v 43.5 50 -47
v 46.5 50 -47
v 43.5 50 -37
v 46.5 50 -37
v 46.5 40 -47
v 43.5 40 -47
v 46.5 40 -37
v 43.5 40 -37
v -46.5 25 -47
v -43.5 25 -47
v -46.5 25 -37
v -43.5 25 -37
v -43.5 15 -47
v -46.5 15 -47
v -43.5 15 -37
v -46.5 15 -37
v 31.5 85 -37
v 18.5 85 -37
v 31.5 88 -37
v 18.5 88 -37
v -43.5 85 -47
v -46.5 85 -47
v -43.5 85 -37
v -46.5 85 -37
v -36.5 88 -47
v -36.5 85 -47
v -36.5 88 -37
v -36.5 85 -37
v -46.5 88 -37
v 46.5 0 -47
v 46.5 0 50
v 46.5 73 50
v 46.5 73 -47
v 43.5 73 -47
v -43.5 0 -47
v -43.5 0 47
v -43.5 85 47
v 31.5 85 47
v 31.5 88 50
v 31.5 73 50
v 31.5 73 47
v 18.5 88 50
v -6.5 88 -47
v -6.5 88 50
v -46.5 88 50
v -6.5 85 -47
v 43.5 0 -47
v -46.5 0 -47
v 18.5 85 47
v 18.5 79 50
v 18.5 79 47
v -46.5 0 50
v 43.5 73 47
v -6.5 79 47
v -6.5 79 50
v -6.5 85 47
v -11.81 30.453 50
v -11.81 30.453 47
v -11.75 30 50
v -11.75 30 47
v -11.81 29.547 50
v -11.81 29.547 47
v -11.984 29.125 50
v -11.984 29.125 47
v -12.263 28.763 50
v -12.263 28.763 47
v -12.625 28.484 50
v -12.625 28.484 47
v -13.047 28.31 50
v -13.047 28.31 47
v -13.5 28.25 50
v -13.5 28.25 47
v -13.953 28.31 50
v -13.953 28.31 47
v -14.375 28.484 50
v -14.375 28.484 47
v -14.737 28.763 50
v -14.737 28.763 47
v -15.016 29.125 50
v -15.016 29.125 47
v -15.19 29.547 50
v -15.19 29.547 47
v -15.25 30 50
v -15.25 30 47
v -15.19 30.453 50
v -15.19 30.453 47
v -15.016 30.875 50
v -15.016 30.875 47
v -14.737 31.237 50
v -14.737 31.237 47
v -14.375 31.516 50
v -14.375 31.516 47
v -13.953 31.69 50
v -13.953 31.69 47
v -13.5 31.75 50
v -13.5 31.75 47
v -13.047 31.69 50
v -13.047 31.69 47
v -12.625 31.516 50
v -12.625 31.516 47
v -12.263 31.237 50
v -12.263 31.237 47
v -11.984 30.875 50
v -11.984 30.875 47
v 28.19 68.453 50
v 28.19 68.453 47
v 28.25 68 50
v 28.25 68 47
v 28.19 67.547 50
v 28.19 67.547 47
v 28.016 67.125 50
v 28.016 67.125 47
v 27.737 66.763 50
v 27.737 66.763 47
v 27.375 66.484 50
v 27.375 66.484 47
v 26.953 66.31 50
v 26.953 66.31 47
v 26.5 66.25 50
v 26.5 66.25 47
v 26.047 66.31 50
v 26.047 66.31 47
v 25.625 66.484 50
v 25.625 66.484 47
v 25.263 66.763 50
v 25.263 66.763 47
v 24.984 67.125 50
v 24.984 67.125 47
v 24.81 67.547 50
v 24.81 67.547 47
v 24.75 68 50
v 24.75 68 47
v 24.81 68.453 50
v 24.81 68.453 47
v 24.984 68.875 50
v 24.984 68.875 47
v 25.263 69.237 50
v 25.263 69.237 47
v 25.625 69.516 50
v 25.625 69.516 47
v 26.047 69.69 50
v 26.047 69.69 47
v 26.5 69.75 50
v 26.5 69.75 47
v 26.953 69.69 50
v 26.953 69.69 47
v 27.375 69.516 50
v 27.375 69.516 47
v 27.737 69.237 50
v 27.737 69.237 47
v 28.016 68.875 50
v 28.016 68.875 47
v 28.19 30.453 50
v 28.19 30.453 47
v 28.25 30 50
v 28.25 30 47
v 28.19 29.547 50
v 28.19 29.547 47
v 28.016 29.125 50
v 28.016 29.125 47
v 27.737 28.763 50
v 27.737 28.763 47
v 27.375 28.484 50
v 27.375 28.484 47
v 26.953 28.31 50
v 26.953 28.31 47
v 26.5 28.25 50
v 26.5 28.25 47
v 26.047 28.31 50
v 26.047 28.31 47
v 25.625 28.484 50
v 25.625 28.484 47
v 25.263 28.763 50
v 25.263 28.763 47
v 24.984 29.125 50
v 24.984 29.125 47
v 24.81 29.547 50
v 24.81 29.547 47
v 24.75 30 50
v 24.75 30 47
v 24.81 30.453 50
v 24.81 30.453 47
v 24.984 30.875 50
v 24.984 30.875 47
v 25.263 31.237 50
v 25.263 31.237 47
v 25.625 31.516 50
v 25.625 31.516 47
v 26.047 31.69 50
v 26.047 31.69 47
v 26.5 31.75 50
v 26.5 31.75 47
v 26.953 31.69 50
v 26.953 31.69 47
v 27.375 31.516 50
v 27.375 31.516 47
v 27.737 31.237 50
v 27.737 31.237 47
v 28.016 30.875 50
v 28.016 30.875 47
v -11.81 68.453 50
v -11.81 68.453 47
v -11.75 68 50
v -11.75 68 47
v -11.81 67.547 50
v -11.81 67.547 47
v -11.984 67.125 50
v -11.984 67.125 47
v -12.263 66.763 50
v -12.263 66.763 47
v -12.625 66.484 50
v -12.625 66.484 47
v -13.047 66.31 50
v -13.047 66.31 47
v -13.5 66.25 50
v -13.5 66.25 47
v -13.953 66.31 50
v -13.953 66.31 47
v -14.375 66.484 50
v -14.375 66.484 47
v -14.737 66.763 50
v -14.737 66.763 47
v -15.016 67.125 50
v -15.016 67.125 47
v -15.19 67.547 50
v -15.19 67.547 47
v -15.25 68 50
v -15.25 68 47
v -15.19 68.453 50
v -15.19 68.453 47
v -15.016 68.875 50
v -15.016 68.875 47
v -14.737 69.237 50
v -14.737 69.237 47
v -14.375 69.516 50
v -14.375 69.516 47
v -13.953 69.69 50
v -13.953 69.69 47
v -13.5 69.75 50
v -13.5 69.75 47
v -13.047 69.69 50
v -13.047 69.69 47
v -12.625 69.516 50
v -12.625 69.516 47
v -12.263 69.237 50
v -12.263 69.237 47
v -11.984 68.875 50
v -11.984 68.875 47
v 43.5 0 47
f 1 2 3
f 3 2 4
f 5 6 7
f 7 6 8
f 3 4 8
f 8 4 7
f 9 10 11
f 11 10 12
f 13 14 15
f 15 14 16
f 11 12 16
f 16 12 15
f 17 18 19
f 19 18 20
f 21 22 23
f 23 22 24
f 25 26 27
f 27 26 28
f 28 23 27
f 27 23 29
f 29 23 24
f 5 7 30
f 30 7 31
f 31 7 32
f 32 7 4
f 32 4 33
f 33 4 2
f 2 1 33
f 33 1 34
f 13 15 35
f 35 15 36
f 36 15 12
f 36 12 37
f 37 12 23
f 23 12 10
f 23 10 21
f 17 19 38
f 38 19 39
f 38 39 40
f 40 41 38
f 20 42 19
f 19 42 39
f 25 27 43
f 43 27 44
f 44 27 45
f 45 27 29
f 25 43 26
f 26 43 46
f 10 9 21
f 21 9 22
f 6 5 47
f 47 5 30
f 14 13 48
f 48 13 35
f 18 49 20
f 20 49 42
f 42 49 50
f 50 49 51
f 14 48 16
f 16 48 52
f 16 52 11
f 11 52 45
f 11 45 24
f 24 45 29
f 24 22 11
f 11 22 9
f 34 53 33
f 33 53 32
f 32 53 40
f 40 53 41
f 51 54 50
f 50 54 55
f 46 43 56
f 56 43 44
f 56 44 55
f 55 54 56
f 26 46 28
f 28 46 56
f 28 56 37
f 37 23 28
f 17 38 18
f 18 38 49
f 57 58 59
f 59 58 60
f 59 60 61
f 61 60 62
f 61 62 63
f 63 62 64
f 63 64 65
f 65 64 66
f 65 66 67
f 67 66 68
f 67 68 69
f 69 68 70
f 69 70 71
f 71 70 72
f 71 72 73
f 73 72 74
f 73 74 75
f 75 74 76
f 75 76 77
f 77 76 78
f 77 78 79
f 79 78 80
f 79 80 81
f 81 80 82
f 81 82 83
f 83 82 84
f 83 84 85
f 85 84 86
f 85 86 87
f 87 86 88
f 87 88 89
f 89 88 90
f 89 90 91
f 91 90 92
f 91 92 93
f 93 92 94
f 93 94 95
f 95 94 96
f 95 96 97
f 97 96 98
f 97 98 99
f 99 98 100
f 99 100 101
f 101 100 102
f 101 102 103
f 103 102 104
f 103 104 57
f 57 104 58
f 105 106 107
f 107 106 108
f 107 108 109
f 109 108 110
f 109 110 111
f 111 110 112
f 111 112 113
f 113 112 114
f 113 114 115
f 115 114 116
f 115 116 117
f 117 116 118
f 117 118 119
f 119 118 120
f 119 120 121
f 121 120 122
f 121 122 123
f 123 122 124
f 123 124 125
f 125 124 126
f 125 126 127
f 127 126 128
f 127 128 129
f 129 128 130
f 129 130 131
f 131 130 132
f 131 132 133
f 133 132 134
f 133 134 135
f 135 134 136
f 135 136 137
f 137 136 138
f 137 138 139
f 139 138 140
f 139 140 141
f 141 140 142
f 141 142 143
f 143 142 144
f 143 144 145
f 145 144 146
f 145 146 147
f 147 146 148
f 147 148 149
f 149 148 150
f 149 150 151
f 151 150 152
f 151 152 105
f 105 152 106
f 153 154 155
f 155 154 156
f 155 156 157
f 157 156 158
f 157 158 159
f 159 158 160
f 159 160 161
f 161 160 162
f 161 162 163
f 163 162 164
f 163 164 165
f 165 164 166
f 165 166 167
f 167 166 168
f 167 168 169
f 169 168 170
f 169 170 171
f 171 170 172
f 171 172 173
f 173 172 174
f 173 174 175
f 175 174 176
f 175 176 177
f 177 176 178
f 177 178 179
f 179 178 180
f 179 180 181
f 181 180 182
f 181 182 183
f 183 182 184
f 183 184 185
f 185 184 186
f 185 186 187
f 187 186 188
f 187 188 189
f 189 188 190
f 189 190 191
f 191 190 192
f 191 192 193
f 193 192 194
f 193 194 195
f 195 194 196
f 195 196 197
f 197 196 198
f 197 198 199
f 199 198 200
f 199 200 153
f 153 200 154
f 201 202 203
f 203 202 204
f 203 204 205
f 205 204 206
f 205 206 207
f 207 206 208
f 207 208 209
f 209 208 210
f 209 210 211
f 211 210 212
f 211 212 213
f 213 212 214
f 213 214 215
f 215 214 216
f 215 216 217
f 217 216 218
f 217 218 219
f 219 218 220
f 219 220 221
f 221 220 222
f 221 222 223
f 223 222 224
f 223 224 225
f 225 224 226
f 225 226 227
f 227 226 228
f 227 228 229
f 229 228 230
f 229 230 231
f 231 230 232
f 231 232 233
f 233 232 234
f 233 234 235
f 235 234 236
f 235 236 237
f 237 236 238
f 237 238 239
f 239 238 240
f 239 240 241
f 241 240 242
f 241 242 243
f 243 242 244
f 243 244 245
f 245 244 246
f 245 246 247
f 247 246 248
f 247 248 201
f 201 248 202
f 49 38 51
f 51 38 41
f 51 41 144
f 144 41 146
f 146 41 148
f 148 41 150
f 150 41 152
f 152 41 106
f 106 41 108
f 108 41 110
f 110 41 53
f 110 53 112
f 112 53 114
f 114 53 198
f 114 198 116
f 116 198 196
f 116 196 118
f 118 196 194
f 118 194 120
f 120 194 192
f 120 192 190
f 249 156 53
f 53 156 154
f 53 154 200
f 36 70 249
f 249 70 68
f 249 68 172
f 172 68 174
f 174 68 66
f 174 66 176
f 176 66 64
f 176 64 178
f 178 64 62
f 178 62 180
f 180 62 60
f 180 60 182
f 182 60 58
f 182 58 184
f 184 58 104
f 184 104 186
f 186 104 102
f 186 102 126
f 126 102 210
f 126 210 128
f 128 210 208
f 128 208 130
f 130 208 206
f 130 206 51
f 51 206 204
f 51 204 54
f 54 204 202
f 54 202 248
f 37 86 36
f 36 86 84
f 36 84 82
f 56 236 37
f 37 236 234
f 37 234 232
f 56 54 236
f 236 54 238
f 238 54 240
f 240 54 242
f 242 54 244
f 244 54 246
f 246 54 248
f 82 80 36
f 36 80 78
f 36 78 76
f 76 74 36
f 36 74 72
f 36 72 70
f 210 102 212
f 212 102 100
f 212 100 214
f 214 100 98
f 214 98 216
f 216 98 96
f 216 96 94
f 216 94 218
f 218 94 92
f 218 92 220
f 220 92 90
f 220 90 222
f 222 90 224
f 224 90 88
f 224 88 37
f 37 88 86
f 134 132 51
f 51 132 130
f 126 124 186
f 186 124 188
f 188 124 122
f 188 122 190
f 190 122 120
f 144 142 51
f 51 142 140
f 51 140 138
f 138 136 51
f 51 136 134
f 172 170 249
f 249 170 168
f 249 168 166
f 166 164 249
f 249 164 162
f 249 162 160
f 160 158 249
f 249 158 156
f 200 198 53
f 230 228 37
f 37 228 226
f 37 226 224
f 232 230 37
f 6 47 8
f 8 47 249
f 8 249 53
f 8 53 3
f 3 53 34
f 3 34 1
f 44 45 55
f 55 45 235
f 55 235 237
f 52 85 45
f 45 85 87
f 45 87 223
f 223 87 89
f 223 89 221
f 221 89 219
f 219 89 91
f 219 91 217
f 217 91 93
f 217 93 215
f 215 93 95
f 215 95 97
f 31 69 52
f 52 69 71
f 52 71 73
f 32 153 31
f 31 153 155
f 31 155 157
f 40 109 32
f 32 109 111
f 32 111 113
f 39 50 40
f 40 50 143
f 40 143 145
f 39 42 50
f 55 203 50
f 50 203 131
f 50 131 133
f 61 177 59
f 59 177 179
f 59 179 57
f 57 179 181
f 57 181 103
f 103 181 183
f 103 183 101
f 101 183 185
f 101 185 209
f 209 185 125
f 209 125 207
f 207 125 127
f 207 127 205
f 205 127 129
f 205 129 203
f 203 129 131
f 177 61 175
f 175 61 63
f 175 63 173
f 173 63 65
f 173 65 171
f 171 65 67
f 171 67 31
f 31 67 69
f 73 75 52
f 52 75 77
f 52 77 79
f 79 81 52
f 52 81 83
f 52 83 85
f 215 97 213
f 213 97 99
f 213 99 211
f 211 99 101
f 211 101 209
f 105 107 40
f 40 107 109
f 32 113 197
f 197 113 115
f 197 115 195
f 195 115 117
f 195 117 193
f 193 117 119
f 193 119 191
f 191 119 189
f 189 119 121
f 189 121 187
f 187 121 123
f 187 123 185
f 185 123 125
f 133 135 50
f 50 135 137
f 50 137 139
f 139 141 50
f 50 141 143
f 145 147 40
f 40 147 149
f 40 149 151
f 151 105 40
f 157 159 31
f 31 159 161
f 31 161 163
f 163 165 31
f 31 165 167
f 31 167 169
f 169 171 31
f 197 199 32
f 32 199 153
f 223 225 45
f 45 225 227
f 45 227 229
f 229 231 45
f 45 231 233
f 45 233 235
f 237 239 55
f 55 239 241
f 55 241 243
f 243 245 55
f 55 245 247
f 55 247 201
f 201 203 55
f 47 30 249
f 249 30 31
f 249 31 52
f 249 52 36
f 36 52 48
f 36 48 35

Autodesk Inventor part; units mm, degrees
ref_plane "YZ Plane" through (0, 0, 0) normal (1, 0, 0) x (0, 1, 0)
ref_plane "XZ Plane" through (0, 0, 0) normal (0, 1, 0) x (-1, 0, 0)
ref_plane "XY Plane" through (0, 0, 0) normal (0, 0, 1) x (1, 0, 0)
sketch "Esquisse1" plane through (0, 0, 0) normal (0, 1, 0) x (-1, 0, 0)
  line L0 (-46.5, 50) -> (46.5, 50)
  line L1 (46.5, 50) -> (46.5, -50)
  line L2 (46.5, -50) -> (-46.5, -50)
  line L3 (-46.5, -50) -> (-46.5, 50)
  line L4 (-46.5, 50) -> (46.5, -50) construction
  line L5 (46.5, 50) -> (-46.5, -50) construction
  point P0 (0, 0)
  dimension "d0" = 100
  dimension "d1" = 93
extrude "Extrusion1" add sketch "Esquisse1" along normal blind 88
sketch "Esquisse2" plane through (0, 0, 0) normal (0, -1, 0) x (1, 0, 0)
  line L0 (-43.5, 47) -> (43.5, 47)
  line L1 (43.5, 47) -> (43.5, -47)
  line L2 (43.5, -47) -> (-43.5, -47)
  line L3 (-43.5, -47) -> (-43.5, 47)
  line L4 (-43.5, 47) -> (43.5, -47) construction
  line L5 (43.5, 47) -> (-43.5, -47) construction
  line L6 (46.5, 50) -> (46.5, -50) projected
  line L7 (-46.5, 50) -> (46.5, 50) projected
  point P0 (0, 0)
  dimension "d4" = 3
  dimension "d5" = 3
extrude "Extrusion2" cut sketch "Esquisse2" against normal blind 85
sketch "Esquisse3" plane through (-46.5, 0, 50) normal (0, 0, 1) x (1, 0, 0)
  line L0 (0, 88) -> (93, 88) projected
  line L1 (93, 88) -> (78, 88)
  line L2 (78, 88) -> (78, 73)
  line L3 (78, 73) -> (93, 73)
  line L4 (93, 73) -> (93, 88)
  point P0 (46.5, 0)
  dimension "d8" = 15
  dimension "d9" = 15
extrude "Extrusion3" cut sketch "Esquisse3" against normal up to surface (100 mm away)
sketch "Esquisse4" plane through (-46.5, 0, 50) normal (0, 0, 1) x (1, 0, 0)
  circle A0 centre (73, 68) radius 1.75
  circle A1 centre (33, 68) radius 1.75
  circle A2 centre (73, 30) radius 1.75
  circle A3 centre (33, 30) radius 1.75
  line L0 (93, 0) -> (93, 73) projected
  line L1 (0, 88) -> (78, 88) projected
  point P0 (46.5, 0)
  dimension "d12" = 40
  dimension "d13" = 3.5
  dimension "d14" = 3.5
  dimension "d15" = 3.5
  dimension "d16" = 3.5
  dimension "d17" = 40
  dimension "d18" = 0
  dimension "d19" = 0
  dimension "d20" = 38
  dimension "d21" = 20
  dimension "d22" = 20
  dimension "d23" = 0
extrude "Extrusion4" cut sketch "Esquisse4" against normal up to surface (3 mm away)
sketch "Esquisse5" plane through (46.5, 0, -50) normal (0, 0, -1) x (-1, 0, 0)
  circle A0 centre (66.8, 77) radius 2.1
  circle A1 centre (41.4, 77) radius 2.1
  circle A2 centre (11, 44.9) radius 2.1
  circle A3 centre (11, 7.4) radius 2.1
  line L0 (0, 0) -> (0, 73) projected
  line L1 (15, 88) -> (93, 88) projected
  line L2 (15, 88) -> (15, 73) projected
  line L3 (15, 73) -> (0, 73) projected
  circle A4 centre (83, 7.4) radius 2.1
  line L4 (93, 0) -> (93, 88) projected
  point P0 (46.5, 0)
  dimension "d26" = 4.2
  dimension "d27" = 4.2
  dimension "d28" = 4.2
  dimension "d29" = 4.2
  dimension "d30" = 11
  dimension "d31" = 0
  dimension "d32" = 11
  dimension "d33" = 0
  dimension "d34" = 37.5
  dimension "d35" = 25.4
  dimension "d36" = 26.4
  dimension "d37" = 28.1
  dimension "d38" = 4.2
  dimension "d39" = 0
  dimension "d40" = 10
extrude "Extrusion5" add sketch "Esquisse5" along normal blind 5.7
sketch "Esquisse6" plane through (-36.5, 7.4, -55.7) normal (0, 0, -1) x (-1, 0, 0)
  point P0 (-36.5, -7.4)
sketch "Esquisse7" plane through (-46.5, 0, 50) normal (0, 0, 1) x (1, 0, 0)
  line L0 (0, 88) -> (78, 88) projected
  line L1 (65, 88) -> (40, 88)
  line L2 (40, 88) -> (40, 79)
  line L3 (40, 79) -> (65, 79)
  line L4 (65, 79) -> (65, 88)
  line L5 (78, 73) -> (78, 88) projected
  point P0 (46.5, 0)
  point P1 (78, 80.5)
  point P2 (65, 83.5)
  dimension "d43" = 25
  dimension "d44" = 13
  dimension "d45" = 9
extrude "Extrusion6" cut sketch "Esquisse7" against normal up to surface (100 mm away)
sketch "Esquisse8" plane through (-20.3, 77, -55.7) normal (0, 0, -1) x (-1, 0, 0)
  line L0 (-13.8, 11) -> (26.2, 11) projected
  line L1 (-66.8, -77) -> (-66.8, -4) projected
  line L2 (26.2, 11) -> (-66.8, 11)
  line L3 (-66.8, 11) -> (-66.8, -77)
  line L4 (-66.8, -77) -> (26.2, -77)
  line L5 (26.2, -77) -> (26.2, 11)
  point P0 (-20.3, -77)
extrude "Extrusion7" cut sketch "Esquisse8" against normal up to surface (8.7 mm away)
sketch "Esquisse9" plane through (31.5, 88, -47) normal (0, 0, -1) x (-1, 0, 0)
  line L0 (13, 0) -> (0, 0) projected
  line L1 (13, -9) -> (13, -3) projected
  line L2 (0, 0) -> (13, 0)
  line L3 (13, 0) -> (13, -3)
  line L4 (13, -3) -> (0, -3)
  line L5 (0, -3) -> (0, 0)
  line L6 (78, -88) -> (78, 0) projected
  line L7 (75, -3) -> (38, -3) projected
  line L8 (78, 0) -> (68, 0)
  line L9 (68, 0) -> (68, -3)
  line L10 (68, -3) -> (78, -3)
  line L11 (78, -3) -> (78, 0)
  line L12 (75, -88) -> (75, -3) projected
  line L13 (78, -63) -> (75, -63)
  line L14 (75, -63) -> (75, -73)
  line L15 (75, -73) -> (78, -73)
  line L16 (78, -73) -> (78, -63)
  line L17 (78, -88) -> (75, -88) projected
  line L18 (-15, -88) -> (-15, -15) projected
  line L19 (-12, -88) -> (-12, -15) projected
  line L20 (-15, -38) -> (-12, -38)
  line L21 (-12, -38) -> (-12, -48)
  line L22 (-12, -48) -> (-15, -48)
  line L23 (-15, -48) -> (-15, -38)
  line L24 (-12, -88) -> (-15, -88) projected
  point P0 (31.5, -88)
  point P1 (-15, -48)
  dimension "d50" = 10
  dimension "d51" = 10
  dimension "d52" = 15
  dimension "d53" = 10
  dimension "d54" = 40
extrude "Extrusion8" cut sketch "Esquisse9" against normal blind 10 contours L3 L4 L5 L0 | L15 L12 L13 L6 | L10 L7 L9 L8 L6 | L18 L20 L19 L22
properties part number "support_imu_Impression 3D"
